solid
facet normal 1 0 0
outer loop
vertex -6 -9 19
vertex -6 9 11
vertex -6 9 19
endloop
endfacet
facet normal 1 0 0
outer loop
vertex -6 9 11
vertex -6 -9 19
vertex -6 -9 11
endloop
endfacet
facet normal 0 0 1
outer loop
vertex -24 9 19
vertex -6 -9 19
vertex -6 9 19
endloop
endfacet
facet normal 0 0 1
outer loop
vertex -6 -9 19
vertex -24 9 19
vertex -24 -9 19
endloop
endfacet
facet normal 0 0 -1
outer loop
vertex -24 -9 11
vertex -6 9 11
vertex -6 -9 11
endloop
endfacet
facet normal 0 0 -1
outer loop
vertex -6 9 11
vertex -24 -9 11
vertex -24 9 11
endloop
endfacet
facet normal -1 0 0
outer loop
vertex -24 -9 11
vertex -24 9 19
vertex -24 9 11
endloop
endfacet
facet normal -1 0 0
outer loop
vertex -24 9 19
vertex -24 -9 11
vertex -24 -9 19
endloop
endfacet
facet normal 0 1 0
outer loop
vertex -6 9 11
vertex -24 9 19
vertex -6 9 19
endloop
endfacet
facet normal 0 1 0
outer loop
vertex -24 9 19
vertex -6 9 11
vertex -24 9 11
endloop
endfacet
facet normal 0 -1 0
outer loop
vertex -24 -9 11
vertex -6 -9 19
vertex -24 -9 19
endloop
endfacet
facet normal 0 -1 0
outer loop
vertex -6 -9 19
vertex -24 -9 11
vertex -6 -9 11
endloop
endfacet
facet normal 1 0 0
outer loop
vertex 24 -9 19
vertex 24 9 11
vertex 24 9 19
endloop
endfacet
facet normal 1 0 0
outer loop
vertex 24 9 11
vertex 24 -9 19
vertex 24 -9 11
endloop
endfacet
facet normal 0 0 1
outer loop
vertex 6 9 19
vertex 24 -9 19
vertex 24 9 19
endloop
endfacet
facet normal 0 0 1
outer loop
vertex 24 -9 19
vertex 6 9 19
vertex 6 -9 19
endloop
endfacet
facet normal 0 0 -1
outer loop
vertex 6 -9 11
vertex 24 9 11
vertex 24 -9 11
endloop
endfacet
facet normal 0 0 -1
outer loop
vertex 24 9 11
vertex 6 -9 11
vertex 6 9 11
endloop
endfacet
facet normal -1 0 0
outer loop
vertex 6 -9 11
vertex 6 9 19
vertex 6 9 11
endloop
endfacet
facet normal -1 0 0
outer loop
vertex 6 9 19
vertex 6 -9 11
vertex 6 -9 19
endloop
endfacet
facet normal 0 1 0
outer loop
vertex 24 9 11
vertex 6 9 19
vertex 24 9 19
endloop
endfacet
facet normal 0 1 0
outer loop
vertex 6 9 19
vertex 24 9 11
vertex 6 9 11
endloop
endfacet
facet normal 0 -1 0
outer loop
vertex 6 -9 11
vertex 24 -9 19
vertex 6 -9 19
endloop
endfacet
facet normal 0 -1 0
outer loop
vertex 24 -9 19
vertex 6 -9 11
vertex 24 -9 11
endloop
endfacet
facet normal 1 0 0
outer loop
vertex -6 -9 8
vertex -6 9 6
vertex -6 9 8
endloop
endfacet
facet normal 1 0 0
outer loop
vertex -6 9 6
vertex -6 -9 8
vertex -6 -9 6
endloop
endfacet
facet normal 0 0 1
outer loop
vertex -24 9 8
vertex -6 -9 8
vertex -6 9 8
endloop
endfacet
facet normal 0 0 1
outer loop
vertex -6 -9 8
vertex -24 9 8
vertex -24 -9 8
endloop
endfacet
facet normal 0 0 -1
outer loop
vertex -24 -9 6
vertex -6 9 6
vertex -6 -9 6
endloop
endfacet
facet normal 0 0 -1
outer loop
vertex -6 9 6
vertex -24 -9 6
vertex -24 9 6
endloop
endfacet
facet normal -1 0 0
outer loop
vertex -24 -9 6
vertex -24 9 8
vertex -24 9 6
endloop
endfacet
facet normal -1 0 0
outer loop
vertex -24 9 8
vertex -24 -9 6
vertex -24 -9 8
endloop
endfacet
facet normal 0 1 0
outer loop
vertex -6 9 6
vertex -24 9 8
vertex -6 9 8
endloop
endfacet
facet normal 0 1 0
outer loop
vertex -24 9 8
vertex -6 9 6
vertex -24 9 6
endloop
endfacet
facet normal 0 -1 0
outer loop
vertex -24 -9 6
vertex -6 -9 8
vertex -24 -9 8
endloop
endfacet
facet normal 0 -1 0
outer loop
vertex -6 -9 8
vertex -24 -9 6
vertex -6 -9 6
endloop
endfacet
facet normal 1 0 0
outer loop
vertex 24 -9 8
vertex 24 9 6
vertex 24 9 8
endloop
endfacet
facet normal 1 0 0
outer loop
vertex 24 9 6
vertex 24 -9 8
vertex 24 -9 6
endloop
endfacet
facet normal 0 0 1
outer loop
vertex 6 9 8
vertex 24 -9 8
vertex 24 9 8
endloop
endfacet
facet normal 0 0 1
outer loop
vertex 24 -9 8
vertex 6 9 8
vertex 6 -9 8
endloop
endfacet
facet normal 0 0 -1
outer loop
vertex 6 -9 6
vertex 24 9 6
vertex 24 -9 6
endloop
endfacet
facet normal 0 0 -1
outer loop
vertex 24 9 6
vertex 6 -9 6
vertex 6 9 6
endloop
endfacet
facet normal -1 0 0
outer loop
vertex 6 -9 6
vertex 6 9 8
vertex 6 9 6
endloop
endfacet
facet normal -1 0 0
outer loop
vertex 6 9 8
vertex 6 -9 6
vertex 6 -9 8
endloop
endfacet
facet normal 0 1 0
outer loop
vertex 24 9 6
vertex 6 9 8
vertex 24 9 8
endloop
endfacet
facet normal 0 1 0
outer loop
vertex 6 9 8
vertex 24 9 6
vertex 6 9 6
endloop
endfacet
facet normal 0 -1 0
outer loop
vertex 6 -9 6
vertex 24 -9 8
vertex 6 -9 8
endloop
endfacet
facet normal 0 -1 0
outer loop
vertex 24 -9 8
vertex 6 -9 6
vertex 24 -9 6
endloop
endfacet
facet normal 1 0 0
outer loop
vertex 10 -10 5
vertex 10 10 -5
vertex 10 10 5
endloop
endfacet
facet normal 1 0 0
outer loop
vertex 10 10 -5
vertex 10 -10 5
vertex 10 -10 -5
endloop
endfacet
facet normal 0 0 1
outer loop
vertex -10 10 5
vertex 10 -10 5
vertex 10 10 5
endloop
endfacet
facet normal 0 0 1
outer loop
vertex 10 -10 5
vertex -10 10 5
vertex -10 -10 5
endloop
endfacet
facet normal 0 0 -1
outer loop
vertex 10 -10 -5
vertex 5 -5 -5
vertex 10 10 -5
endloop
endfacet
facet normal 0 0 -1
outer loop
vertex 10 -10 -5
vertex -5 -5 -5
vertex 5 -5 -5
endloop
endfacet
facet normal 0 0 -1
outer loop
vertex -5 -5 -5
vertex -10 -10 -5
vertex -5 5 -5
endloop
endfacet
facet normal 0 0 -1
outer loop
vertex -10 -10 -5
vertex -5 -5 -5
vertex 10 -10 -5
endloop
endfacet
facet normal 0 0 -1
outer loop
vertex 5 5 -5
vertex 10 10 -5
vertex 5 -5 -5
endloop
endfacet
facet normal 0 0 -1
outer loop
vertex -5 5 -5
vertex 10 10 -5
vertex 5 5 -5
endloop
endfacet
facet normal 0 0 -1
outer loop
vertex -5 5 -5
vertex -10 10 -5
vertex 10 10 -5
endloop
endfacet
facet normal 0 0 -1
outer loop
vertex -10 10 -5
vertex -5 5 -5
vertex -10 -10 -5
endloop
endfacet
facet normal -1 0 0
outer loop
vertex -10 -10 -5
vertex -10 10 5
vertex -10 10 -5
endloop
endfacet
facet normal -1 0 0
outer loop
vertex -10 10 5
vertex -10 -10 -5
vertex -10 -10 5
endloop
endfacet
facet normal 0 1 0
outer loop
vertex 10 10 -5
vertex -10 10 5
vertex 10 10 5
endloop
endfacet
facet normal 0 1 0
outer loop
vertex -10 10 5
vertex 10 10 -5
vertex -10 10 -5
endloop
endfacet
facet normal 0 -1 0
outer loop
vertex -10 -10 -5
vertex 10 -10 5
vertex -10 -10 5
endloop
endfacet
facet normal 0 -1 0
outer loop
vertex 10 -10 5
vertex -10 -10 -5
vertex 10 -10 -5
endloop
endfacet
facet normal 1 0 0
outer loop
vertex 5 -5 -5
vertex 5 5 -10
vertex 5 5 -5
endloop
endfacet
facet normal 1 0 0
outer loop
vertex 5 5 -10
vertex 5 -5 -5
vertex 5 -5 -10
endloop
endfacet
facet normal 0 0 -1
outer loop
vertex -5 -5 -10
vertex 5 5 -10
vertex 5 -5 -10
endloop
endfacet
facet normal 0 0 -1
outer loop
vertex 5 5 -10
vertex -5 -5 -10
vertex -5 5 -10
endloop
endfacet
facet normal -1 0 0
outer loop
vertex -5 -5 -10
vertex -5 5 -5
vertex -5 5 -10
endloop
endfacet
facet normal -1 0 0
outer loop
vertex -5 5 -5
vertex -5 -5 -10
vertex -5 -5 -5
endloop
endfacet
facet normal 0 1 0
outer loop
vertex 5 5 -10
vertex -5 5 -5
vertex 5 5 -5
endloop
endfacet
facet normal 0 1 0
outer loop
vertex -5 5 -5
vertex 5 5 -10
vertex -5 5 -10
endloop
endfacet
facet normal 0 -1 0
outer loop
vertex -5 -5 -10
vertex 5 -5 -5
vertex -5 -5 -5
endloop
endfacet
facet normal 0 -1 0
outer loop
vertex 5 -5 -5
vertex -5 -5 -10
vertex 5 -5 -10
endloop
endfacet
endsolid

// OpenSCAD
// Dimensions for each component
module central_block() {
    cube([20, 20, 10], center = true); // Central block dimensions
}

module side_block() {
    cube([18, 18, 8], center = true); // Side block dimensions
}

module spacer_block() {
    cube([18, 18, 2], center = true); // Spacer block dimensions
}

module connector_block() {
    cube([10, 10, 5], center = true); // Connector block dimensions
}

// Assembly of the model
module flexible_coupling() {
    // Layer 1: Side blocks
    translate([-15, 0, 15]) side_block(); // Side block 1
    translate([15, 0, 15]) side_block();  // Side block 2

    // Layer 2: Spacer blocks
    translate([-15, 0, 7]) spacer_block(); // Spacer block 1
    translate([15, 0, 7]) spacer_block();  // Spacer block 2

    // Layer 3: Central block
    translate([0, 0, 0]) central_block();

    // Layer 4: Connector block
    translate([0, 0, -7.5]) connector_block();
}

// Render the model
flexible_coupling();
